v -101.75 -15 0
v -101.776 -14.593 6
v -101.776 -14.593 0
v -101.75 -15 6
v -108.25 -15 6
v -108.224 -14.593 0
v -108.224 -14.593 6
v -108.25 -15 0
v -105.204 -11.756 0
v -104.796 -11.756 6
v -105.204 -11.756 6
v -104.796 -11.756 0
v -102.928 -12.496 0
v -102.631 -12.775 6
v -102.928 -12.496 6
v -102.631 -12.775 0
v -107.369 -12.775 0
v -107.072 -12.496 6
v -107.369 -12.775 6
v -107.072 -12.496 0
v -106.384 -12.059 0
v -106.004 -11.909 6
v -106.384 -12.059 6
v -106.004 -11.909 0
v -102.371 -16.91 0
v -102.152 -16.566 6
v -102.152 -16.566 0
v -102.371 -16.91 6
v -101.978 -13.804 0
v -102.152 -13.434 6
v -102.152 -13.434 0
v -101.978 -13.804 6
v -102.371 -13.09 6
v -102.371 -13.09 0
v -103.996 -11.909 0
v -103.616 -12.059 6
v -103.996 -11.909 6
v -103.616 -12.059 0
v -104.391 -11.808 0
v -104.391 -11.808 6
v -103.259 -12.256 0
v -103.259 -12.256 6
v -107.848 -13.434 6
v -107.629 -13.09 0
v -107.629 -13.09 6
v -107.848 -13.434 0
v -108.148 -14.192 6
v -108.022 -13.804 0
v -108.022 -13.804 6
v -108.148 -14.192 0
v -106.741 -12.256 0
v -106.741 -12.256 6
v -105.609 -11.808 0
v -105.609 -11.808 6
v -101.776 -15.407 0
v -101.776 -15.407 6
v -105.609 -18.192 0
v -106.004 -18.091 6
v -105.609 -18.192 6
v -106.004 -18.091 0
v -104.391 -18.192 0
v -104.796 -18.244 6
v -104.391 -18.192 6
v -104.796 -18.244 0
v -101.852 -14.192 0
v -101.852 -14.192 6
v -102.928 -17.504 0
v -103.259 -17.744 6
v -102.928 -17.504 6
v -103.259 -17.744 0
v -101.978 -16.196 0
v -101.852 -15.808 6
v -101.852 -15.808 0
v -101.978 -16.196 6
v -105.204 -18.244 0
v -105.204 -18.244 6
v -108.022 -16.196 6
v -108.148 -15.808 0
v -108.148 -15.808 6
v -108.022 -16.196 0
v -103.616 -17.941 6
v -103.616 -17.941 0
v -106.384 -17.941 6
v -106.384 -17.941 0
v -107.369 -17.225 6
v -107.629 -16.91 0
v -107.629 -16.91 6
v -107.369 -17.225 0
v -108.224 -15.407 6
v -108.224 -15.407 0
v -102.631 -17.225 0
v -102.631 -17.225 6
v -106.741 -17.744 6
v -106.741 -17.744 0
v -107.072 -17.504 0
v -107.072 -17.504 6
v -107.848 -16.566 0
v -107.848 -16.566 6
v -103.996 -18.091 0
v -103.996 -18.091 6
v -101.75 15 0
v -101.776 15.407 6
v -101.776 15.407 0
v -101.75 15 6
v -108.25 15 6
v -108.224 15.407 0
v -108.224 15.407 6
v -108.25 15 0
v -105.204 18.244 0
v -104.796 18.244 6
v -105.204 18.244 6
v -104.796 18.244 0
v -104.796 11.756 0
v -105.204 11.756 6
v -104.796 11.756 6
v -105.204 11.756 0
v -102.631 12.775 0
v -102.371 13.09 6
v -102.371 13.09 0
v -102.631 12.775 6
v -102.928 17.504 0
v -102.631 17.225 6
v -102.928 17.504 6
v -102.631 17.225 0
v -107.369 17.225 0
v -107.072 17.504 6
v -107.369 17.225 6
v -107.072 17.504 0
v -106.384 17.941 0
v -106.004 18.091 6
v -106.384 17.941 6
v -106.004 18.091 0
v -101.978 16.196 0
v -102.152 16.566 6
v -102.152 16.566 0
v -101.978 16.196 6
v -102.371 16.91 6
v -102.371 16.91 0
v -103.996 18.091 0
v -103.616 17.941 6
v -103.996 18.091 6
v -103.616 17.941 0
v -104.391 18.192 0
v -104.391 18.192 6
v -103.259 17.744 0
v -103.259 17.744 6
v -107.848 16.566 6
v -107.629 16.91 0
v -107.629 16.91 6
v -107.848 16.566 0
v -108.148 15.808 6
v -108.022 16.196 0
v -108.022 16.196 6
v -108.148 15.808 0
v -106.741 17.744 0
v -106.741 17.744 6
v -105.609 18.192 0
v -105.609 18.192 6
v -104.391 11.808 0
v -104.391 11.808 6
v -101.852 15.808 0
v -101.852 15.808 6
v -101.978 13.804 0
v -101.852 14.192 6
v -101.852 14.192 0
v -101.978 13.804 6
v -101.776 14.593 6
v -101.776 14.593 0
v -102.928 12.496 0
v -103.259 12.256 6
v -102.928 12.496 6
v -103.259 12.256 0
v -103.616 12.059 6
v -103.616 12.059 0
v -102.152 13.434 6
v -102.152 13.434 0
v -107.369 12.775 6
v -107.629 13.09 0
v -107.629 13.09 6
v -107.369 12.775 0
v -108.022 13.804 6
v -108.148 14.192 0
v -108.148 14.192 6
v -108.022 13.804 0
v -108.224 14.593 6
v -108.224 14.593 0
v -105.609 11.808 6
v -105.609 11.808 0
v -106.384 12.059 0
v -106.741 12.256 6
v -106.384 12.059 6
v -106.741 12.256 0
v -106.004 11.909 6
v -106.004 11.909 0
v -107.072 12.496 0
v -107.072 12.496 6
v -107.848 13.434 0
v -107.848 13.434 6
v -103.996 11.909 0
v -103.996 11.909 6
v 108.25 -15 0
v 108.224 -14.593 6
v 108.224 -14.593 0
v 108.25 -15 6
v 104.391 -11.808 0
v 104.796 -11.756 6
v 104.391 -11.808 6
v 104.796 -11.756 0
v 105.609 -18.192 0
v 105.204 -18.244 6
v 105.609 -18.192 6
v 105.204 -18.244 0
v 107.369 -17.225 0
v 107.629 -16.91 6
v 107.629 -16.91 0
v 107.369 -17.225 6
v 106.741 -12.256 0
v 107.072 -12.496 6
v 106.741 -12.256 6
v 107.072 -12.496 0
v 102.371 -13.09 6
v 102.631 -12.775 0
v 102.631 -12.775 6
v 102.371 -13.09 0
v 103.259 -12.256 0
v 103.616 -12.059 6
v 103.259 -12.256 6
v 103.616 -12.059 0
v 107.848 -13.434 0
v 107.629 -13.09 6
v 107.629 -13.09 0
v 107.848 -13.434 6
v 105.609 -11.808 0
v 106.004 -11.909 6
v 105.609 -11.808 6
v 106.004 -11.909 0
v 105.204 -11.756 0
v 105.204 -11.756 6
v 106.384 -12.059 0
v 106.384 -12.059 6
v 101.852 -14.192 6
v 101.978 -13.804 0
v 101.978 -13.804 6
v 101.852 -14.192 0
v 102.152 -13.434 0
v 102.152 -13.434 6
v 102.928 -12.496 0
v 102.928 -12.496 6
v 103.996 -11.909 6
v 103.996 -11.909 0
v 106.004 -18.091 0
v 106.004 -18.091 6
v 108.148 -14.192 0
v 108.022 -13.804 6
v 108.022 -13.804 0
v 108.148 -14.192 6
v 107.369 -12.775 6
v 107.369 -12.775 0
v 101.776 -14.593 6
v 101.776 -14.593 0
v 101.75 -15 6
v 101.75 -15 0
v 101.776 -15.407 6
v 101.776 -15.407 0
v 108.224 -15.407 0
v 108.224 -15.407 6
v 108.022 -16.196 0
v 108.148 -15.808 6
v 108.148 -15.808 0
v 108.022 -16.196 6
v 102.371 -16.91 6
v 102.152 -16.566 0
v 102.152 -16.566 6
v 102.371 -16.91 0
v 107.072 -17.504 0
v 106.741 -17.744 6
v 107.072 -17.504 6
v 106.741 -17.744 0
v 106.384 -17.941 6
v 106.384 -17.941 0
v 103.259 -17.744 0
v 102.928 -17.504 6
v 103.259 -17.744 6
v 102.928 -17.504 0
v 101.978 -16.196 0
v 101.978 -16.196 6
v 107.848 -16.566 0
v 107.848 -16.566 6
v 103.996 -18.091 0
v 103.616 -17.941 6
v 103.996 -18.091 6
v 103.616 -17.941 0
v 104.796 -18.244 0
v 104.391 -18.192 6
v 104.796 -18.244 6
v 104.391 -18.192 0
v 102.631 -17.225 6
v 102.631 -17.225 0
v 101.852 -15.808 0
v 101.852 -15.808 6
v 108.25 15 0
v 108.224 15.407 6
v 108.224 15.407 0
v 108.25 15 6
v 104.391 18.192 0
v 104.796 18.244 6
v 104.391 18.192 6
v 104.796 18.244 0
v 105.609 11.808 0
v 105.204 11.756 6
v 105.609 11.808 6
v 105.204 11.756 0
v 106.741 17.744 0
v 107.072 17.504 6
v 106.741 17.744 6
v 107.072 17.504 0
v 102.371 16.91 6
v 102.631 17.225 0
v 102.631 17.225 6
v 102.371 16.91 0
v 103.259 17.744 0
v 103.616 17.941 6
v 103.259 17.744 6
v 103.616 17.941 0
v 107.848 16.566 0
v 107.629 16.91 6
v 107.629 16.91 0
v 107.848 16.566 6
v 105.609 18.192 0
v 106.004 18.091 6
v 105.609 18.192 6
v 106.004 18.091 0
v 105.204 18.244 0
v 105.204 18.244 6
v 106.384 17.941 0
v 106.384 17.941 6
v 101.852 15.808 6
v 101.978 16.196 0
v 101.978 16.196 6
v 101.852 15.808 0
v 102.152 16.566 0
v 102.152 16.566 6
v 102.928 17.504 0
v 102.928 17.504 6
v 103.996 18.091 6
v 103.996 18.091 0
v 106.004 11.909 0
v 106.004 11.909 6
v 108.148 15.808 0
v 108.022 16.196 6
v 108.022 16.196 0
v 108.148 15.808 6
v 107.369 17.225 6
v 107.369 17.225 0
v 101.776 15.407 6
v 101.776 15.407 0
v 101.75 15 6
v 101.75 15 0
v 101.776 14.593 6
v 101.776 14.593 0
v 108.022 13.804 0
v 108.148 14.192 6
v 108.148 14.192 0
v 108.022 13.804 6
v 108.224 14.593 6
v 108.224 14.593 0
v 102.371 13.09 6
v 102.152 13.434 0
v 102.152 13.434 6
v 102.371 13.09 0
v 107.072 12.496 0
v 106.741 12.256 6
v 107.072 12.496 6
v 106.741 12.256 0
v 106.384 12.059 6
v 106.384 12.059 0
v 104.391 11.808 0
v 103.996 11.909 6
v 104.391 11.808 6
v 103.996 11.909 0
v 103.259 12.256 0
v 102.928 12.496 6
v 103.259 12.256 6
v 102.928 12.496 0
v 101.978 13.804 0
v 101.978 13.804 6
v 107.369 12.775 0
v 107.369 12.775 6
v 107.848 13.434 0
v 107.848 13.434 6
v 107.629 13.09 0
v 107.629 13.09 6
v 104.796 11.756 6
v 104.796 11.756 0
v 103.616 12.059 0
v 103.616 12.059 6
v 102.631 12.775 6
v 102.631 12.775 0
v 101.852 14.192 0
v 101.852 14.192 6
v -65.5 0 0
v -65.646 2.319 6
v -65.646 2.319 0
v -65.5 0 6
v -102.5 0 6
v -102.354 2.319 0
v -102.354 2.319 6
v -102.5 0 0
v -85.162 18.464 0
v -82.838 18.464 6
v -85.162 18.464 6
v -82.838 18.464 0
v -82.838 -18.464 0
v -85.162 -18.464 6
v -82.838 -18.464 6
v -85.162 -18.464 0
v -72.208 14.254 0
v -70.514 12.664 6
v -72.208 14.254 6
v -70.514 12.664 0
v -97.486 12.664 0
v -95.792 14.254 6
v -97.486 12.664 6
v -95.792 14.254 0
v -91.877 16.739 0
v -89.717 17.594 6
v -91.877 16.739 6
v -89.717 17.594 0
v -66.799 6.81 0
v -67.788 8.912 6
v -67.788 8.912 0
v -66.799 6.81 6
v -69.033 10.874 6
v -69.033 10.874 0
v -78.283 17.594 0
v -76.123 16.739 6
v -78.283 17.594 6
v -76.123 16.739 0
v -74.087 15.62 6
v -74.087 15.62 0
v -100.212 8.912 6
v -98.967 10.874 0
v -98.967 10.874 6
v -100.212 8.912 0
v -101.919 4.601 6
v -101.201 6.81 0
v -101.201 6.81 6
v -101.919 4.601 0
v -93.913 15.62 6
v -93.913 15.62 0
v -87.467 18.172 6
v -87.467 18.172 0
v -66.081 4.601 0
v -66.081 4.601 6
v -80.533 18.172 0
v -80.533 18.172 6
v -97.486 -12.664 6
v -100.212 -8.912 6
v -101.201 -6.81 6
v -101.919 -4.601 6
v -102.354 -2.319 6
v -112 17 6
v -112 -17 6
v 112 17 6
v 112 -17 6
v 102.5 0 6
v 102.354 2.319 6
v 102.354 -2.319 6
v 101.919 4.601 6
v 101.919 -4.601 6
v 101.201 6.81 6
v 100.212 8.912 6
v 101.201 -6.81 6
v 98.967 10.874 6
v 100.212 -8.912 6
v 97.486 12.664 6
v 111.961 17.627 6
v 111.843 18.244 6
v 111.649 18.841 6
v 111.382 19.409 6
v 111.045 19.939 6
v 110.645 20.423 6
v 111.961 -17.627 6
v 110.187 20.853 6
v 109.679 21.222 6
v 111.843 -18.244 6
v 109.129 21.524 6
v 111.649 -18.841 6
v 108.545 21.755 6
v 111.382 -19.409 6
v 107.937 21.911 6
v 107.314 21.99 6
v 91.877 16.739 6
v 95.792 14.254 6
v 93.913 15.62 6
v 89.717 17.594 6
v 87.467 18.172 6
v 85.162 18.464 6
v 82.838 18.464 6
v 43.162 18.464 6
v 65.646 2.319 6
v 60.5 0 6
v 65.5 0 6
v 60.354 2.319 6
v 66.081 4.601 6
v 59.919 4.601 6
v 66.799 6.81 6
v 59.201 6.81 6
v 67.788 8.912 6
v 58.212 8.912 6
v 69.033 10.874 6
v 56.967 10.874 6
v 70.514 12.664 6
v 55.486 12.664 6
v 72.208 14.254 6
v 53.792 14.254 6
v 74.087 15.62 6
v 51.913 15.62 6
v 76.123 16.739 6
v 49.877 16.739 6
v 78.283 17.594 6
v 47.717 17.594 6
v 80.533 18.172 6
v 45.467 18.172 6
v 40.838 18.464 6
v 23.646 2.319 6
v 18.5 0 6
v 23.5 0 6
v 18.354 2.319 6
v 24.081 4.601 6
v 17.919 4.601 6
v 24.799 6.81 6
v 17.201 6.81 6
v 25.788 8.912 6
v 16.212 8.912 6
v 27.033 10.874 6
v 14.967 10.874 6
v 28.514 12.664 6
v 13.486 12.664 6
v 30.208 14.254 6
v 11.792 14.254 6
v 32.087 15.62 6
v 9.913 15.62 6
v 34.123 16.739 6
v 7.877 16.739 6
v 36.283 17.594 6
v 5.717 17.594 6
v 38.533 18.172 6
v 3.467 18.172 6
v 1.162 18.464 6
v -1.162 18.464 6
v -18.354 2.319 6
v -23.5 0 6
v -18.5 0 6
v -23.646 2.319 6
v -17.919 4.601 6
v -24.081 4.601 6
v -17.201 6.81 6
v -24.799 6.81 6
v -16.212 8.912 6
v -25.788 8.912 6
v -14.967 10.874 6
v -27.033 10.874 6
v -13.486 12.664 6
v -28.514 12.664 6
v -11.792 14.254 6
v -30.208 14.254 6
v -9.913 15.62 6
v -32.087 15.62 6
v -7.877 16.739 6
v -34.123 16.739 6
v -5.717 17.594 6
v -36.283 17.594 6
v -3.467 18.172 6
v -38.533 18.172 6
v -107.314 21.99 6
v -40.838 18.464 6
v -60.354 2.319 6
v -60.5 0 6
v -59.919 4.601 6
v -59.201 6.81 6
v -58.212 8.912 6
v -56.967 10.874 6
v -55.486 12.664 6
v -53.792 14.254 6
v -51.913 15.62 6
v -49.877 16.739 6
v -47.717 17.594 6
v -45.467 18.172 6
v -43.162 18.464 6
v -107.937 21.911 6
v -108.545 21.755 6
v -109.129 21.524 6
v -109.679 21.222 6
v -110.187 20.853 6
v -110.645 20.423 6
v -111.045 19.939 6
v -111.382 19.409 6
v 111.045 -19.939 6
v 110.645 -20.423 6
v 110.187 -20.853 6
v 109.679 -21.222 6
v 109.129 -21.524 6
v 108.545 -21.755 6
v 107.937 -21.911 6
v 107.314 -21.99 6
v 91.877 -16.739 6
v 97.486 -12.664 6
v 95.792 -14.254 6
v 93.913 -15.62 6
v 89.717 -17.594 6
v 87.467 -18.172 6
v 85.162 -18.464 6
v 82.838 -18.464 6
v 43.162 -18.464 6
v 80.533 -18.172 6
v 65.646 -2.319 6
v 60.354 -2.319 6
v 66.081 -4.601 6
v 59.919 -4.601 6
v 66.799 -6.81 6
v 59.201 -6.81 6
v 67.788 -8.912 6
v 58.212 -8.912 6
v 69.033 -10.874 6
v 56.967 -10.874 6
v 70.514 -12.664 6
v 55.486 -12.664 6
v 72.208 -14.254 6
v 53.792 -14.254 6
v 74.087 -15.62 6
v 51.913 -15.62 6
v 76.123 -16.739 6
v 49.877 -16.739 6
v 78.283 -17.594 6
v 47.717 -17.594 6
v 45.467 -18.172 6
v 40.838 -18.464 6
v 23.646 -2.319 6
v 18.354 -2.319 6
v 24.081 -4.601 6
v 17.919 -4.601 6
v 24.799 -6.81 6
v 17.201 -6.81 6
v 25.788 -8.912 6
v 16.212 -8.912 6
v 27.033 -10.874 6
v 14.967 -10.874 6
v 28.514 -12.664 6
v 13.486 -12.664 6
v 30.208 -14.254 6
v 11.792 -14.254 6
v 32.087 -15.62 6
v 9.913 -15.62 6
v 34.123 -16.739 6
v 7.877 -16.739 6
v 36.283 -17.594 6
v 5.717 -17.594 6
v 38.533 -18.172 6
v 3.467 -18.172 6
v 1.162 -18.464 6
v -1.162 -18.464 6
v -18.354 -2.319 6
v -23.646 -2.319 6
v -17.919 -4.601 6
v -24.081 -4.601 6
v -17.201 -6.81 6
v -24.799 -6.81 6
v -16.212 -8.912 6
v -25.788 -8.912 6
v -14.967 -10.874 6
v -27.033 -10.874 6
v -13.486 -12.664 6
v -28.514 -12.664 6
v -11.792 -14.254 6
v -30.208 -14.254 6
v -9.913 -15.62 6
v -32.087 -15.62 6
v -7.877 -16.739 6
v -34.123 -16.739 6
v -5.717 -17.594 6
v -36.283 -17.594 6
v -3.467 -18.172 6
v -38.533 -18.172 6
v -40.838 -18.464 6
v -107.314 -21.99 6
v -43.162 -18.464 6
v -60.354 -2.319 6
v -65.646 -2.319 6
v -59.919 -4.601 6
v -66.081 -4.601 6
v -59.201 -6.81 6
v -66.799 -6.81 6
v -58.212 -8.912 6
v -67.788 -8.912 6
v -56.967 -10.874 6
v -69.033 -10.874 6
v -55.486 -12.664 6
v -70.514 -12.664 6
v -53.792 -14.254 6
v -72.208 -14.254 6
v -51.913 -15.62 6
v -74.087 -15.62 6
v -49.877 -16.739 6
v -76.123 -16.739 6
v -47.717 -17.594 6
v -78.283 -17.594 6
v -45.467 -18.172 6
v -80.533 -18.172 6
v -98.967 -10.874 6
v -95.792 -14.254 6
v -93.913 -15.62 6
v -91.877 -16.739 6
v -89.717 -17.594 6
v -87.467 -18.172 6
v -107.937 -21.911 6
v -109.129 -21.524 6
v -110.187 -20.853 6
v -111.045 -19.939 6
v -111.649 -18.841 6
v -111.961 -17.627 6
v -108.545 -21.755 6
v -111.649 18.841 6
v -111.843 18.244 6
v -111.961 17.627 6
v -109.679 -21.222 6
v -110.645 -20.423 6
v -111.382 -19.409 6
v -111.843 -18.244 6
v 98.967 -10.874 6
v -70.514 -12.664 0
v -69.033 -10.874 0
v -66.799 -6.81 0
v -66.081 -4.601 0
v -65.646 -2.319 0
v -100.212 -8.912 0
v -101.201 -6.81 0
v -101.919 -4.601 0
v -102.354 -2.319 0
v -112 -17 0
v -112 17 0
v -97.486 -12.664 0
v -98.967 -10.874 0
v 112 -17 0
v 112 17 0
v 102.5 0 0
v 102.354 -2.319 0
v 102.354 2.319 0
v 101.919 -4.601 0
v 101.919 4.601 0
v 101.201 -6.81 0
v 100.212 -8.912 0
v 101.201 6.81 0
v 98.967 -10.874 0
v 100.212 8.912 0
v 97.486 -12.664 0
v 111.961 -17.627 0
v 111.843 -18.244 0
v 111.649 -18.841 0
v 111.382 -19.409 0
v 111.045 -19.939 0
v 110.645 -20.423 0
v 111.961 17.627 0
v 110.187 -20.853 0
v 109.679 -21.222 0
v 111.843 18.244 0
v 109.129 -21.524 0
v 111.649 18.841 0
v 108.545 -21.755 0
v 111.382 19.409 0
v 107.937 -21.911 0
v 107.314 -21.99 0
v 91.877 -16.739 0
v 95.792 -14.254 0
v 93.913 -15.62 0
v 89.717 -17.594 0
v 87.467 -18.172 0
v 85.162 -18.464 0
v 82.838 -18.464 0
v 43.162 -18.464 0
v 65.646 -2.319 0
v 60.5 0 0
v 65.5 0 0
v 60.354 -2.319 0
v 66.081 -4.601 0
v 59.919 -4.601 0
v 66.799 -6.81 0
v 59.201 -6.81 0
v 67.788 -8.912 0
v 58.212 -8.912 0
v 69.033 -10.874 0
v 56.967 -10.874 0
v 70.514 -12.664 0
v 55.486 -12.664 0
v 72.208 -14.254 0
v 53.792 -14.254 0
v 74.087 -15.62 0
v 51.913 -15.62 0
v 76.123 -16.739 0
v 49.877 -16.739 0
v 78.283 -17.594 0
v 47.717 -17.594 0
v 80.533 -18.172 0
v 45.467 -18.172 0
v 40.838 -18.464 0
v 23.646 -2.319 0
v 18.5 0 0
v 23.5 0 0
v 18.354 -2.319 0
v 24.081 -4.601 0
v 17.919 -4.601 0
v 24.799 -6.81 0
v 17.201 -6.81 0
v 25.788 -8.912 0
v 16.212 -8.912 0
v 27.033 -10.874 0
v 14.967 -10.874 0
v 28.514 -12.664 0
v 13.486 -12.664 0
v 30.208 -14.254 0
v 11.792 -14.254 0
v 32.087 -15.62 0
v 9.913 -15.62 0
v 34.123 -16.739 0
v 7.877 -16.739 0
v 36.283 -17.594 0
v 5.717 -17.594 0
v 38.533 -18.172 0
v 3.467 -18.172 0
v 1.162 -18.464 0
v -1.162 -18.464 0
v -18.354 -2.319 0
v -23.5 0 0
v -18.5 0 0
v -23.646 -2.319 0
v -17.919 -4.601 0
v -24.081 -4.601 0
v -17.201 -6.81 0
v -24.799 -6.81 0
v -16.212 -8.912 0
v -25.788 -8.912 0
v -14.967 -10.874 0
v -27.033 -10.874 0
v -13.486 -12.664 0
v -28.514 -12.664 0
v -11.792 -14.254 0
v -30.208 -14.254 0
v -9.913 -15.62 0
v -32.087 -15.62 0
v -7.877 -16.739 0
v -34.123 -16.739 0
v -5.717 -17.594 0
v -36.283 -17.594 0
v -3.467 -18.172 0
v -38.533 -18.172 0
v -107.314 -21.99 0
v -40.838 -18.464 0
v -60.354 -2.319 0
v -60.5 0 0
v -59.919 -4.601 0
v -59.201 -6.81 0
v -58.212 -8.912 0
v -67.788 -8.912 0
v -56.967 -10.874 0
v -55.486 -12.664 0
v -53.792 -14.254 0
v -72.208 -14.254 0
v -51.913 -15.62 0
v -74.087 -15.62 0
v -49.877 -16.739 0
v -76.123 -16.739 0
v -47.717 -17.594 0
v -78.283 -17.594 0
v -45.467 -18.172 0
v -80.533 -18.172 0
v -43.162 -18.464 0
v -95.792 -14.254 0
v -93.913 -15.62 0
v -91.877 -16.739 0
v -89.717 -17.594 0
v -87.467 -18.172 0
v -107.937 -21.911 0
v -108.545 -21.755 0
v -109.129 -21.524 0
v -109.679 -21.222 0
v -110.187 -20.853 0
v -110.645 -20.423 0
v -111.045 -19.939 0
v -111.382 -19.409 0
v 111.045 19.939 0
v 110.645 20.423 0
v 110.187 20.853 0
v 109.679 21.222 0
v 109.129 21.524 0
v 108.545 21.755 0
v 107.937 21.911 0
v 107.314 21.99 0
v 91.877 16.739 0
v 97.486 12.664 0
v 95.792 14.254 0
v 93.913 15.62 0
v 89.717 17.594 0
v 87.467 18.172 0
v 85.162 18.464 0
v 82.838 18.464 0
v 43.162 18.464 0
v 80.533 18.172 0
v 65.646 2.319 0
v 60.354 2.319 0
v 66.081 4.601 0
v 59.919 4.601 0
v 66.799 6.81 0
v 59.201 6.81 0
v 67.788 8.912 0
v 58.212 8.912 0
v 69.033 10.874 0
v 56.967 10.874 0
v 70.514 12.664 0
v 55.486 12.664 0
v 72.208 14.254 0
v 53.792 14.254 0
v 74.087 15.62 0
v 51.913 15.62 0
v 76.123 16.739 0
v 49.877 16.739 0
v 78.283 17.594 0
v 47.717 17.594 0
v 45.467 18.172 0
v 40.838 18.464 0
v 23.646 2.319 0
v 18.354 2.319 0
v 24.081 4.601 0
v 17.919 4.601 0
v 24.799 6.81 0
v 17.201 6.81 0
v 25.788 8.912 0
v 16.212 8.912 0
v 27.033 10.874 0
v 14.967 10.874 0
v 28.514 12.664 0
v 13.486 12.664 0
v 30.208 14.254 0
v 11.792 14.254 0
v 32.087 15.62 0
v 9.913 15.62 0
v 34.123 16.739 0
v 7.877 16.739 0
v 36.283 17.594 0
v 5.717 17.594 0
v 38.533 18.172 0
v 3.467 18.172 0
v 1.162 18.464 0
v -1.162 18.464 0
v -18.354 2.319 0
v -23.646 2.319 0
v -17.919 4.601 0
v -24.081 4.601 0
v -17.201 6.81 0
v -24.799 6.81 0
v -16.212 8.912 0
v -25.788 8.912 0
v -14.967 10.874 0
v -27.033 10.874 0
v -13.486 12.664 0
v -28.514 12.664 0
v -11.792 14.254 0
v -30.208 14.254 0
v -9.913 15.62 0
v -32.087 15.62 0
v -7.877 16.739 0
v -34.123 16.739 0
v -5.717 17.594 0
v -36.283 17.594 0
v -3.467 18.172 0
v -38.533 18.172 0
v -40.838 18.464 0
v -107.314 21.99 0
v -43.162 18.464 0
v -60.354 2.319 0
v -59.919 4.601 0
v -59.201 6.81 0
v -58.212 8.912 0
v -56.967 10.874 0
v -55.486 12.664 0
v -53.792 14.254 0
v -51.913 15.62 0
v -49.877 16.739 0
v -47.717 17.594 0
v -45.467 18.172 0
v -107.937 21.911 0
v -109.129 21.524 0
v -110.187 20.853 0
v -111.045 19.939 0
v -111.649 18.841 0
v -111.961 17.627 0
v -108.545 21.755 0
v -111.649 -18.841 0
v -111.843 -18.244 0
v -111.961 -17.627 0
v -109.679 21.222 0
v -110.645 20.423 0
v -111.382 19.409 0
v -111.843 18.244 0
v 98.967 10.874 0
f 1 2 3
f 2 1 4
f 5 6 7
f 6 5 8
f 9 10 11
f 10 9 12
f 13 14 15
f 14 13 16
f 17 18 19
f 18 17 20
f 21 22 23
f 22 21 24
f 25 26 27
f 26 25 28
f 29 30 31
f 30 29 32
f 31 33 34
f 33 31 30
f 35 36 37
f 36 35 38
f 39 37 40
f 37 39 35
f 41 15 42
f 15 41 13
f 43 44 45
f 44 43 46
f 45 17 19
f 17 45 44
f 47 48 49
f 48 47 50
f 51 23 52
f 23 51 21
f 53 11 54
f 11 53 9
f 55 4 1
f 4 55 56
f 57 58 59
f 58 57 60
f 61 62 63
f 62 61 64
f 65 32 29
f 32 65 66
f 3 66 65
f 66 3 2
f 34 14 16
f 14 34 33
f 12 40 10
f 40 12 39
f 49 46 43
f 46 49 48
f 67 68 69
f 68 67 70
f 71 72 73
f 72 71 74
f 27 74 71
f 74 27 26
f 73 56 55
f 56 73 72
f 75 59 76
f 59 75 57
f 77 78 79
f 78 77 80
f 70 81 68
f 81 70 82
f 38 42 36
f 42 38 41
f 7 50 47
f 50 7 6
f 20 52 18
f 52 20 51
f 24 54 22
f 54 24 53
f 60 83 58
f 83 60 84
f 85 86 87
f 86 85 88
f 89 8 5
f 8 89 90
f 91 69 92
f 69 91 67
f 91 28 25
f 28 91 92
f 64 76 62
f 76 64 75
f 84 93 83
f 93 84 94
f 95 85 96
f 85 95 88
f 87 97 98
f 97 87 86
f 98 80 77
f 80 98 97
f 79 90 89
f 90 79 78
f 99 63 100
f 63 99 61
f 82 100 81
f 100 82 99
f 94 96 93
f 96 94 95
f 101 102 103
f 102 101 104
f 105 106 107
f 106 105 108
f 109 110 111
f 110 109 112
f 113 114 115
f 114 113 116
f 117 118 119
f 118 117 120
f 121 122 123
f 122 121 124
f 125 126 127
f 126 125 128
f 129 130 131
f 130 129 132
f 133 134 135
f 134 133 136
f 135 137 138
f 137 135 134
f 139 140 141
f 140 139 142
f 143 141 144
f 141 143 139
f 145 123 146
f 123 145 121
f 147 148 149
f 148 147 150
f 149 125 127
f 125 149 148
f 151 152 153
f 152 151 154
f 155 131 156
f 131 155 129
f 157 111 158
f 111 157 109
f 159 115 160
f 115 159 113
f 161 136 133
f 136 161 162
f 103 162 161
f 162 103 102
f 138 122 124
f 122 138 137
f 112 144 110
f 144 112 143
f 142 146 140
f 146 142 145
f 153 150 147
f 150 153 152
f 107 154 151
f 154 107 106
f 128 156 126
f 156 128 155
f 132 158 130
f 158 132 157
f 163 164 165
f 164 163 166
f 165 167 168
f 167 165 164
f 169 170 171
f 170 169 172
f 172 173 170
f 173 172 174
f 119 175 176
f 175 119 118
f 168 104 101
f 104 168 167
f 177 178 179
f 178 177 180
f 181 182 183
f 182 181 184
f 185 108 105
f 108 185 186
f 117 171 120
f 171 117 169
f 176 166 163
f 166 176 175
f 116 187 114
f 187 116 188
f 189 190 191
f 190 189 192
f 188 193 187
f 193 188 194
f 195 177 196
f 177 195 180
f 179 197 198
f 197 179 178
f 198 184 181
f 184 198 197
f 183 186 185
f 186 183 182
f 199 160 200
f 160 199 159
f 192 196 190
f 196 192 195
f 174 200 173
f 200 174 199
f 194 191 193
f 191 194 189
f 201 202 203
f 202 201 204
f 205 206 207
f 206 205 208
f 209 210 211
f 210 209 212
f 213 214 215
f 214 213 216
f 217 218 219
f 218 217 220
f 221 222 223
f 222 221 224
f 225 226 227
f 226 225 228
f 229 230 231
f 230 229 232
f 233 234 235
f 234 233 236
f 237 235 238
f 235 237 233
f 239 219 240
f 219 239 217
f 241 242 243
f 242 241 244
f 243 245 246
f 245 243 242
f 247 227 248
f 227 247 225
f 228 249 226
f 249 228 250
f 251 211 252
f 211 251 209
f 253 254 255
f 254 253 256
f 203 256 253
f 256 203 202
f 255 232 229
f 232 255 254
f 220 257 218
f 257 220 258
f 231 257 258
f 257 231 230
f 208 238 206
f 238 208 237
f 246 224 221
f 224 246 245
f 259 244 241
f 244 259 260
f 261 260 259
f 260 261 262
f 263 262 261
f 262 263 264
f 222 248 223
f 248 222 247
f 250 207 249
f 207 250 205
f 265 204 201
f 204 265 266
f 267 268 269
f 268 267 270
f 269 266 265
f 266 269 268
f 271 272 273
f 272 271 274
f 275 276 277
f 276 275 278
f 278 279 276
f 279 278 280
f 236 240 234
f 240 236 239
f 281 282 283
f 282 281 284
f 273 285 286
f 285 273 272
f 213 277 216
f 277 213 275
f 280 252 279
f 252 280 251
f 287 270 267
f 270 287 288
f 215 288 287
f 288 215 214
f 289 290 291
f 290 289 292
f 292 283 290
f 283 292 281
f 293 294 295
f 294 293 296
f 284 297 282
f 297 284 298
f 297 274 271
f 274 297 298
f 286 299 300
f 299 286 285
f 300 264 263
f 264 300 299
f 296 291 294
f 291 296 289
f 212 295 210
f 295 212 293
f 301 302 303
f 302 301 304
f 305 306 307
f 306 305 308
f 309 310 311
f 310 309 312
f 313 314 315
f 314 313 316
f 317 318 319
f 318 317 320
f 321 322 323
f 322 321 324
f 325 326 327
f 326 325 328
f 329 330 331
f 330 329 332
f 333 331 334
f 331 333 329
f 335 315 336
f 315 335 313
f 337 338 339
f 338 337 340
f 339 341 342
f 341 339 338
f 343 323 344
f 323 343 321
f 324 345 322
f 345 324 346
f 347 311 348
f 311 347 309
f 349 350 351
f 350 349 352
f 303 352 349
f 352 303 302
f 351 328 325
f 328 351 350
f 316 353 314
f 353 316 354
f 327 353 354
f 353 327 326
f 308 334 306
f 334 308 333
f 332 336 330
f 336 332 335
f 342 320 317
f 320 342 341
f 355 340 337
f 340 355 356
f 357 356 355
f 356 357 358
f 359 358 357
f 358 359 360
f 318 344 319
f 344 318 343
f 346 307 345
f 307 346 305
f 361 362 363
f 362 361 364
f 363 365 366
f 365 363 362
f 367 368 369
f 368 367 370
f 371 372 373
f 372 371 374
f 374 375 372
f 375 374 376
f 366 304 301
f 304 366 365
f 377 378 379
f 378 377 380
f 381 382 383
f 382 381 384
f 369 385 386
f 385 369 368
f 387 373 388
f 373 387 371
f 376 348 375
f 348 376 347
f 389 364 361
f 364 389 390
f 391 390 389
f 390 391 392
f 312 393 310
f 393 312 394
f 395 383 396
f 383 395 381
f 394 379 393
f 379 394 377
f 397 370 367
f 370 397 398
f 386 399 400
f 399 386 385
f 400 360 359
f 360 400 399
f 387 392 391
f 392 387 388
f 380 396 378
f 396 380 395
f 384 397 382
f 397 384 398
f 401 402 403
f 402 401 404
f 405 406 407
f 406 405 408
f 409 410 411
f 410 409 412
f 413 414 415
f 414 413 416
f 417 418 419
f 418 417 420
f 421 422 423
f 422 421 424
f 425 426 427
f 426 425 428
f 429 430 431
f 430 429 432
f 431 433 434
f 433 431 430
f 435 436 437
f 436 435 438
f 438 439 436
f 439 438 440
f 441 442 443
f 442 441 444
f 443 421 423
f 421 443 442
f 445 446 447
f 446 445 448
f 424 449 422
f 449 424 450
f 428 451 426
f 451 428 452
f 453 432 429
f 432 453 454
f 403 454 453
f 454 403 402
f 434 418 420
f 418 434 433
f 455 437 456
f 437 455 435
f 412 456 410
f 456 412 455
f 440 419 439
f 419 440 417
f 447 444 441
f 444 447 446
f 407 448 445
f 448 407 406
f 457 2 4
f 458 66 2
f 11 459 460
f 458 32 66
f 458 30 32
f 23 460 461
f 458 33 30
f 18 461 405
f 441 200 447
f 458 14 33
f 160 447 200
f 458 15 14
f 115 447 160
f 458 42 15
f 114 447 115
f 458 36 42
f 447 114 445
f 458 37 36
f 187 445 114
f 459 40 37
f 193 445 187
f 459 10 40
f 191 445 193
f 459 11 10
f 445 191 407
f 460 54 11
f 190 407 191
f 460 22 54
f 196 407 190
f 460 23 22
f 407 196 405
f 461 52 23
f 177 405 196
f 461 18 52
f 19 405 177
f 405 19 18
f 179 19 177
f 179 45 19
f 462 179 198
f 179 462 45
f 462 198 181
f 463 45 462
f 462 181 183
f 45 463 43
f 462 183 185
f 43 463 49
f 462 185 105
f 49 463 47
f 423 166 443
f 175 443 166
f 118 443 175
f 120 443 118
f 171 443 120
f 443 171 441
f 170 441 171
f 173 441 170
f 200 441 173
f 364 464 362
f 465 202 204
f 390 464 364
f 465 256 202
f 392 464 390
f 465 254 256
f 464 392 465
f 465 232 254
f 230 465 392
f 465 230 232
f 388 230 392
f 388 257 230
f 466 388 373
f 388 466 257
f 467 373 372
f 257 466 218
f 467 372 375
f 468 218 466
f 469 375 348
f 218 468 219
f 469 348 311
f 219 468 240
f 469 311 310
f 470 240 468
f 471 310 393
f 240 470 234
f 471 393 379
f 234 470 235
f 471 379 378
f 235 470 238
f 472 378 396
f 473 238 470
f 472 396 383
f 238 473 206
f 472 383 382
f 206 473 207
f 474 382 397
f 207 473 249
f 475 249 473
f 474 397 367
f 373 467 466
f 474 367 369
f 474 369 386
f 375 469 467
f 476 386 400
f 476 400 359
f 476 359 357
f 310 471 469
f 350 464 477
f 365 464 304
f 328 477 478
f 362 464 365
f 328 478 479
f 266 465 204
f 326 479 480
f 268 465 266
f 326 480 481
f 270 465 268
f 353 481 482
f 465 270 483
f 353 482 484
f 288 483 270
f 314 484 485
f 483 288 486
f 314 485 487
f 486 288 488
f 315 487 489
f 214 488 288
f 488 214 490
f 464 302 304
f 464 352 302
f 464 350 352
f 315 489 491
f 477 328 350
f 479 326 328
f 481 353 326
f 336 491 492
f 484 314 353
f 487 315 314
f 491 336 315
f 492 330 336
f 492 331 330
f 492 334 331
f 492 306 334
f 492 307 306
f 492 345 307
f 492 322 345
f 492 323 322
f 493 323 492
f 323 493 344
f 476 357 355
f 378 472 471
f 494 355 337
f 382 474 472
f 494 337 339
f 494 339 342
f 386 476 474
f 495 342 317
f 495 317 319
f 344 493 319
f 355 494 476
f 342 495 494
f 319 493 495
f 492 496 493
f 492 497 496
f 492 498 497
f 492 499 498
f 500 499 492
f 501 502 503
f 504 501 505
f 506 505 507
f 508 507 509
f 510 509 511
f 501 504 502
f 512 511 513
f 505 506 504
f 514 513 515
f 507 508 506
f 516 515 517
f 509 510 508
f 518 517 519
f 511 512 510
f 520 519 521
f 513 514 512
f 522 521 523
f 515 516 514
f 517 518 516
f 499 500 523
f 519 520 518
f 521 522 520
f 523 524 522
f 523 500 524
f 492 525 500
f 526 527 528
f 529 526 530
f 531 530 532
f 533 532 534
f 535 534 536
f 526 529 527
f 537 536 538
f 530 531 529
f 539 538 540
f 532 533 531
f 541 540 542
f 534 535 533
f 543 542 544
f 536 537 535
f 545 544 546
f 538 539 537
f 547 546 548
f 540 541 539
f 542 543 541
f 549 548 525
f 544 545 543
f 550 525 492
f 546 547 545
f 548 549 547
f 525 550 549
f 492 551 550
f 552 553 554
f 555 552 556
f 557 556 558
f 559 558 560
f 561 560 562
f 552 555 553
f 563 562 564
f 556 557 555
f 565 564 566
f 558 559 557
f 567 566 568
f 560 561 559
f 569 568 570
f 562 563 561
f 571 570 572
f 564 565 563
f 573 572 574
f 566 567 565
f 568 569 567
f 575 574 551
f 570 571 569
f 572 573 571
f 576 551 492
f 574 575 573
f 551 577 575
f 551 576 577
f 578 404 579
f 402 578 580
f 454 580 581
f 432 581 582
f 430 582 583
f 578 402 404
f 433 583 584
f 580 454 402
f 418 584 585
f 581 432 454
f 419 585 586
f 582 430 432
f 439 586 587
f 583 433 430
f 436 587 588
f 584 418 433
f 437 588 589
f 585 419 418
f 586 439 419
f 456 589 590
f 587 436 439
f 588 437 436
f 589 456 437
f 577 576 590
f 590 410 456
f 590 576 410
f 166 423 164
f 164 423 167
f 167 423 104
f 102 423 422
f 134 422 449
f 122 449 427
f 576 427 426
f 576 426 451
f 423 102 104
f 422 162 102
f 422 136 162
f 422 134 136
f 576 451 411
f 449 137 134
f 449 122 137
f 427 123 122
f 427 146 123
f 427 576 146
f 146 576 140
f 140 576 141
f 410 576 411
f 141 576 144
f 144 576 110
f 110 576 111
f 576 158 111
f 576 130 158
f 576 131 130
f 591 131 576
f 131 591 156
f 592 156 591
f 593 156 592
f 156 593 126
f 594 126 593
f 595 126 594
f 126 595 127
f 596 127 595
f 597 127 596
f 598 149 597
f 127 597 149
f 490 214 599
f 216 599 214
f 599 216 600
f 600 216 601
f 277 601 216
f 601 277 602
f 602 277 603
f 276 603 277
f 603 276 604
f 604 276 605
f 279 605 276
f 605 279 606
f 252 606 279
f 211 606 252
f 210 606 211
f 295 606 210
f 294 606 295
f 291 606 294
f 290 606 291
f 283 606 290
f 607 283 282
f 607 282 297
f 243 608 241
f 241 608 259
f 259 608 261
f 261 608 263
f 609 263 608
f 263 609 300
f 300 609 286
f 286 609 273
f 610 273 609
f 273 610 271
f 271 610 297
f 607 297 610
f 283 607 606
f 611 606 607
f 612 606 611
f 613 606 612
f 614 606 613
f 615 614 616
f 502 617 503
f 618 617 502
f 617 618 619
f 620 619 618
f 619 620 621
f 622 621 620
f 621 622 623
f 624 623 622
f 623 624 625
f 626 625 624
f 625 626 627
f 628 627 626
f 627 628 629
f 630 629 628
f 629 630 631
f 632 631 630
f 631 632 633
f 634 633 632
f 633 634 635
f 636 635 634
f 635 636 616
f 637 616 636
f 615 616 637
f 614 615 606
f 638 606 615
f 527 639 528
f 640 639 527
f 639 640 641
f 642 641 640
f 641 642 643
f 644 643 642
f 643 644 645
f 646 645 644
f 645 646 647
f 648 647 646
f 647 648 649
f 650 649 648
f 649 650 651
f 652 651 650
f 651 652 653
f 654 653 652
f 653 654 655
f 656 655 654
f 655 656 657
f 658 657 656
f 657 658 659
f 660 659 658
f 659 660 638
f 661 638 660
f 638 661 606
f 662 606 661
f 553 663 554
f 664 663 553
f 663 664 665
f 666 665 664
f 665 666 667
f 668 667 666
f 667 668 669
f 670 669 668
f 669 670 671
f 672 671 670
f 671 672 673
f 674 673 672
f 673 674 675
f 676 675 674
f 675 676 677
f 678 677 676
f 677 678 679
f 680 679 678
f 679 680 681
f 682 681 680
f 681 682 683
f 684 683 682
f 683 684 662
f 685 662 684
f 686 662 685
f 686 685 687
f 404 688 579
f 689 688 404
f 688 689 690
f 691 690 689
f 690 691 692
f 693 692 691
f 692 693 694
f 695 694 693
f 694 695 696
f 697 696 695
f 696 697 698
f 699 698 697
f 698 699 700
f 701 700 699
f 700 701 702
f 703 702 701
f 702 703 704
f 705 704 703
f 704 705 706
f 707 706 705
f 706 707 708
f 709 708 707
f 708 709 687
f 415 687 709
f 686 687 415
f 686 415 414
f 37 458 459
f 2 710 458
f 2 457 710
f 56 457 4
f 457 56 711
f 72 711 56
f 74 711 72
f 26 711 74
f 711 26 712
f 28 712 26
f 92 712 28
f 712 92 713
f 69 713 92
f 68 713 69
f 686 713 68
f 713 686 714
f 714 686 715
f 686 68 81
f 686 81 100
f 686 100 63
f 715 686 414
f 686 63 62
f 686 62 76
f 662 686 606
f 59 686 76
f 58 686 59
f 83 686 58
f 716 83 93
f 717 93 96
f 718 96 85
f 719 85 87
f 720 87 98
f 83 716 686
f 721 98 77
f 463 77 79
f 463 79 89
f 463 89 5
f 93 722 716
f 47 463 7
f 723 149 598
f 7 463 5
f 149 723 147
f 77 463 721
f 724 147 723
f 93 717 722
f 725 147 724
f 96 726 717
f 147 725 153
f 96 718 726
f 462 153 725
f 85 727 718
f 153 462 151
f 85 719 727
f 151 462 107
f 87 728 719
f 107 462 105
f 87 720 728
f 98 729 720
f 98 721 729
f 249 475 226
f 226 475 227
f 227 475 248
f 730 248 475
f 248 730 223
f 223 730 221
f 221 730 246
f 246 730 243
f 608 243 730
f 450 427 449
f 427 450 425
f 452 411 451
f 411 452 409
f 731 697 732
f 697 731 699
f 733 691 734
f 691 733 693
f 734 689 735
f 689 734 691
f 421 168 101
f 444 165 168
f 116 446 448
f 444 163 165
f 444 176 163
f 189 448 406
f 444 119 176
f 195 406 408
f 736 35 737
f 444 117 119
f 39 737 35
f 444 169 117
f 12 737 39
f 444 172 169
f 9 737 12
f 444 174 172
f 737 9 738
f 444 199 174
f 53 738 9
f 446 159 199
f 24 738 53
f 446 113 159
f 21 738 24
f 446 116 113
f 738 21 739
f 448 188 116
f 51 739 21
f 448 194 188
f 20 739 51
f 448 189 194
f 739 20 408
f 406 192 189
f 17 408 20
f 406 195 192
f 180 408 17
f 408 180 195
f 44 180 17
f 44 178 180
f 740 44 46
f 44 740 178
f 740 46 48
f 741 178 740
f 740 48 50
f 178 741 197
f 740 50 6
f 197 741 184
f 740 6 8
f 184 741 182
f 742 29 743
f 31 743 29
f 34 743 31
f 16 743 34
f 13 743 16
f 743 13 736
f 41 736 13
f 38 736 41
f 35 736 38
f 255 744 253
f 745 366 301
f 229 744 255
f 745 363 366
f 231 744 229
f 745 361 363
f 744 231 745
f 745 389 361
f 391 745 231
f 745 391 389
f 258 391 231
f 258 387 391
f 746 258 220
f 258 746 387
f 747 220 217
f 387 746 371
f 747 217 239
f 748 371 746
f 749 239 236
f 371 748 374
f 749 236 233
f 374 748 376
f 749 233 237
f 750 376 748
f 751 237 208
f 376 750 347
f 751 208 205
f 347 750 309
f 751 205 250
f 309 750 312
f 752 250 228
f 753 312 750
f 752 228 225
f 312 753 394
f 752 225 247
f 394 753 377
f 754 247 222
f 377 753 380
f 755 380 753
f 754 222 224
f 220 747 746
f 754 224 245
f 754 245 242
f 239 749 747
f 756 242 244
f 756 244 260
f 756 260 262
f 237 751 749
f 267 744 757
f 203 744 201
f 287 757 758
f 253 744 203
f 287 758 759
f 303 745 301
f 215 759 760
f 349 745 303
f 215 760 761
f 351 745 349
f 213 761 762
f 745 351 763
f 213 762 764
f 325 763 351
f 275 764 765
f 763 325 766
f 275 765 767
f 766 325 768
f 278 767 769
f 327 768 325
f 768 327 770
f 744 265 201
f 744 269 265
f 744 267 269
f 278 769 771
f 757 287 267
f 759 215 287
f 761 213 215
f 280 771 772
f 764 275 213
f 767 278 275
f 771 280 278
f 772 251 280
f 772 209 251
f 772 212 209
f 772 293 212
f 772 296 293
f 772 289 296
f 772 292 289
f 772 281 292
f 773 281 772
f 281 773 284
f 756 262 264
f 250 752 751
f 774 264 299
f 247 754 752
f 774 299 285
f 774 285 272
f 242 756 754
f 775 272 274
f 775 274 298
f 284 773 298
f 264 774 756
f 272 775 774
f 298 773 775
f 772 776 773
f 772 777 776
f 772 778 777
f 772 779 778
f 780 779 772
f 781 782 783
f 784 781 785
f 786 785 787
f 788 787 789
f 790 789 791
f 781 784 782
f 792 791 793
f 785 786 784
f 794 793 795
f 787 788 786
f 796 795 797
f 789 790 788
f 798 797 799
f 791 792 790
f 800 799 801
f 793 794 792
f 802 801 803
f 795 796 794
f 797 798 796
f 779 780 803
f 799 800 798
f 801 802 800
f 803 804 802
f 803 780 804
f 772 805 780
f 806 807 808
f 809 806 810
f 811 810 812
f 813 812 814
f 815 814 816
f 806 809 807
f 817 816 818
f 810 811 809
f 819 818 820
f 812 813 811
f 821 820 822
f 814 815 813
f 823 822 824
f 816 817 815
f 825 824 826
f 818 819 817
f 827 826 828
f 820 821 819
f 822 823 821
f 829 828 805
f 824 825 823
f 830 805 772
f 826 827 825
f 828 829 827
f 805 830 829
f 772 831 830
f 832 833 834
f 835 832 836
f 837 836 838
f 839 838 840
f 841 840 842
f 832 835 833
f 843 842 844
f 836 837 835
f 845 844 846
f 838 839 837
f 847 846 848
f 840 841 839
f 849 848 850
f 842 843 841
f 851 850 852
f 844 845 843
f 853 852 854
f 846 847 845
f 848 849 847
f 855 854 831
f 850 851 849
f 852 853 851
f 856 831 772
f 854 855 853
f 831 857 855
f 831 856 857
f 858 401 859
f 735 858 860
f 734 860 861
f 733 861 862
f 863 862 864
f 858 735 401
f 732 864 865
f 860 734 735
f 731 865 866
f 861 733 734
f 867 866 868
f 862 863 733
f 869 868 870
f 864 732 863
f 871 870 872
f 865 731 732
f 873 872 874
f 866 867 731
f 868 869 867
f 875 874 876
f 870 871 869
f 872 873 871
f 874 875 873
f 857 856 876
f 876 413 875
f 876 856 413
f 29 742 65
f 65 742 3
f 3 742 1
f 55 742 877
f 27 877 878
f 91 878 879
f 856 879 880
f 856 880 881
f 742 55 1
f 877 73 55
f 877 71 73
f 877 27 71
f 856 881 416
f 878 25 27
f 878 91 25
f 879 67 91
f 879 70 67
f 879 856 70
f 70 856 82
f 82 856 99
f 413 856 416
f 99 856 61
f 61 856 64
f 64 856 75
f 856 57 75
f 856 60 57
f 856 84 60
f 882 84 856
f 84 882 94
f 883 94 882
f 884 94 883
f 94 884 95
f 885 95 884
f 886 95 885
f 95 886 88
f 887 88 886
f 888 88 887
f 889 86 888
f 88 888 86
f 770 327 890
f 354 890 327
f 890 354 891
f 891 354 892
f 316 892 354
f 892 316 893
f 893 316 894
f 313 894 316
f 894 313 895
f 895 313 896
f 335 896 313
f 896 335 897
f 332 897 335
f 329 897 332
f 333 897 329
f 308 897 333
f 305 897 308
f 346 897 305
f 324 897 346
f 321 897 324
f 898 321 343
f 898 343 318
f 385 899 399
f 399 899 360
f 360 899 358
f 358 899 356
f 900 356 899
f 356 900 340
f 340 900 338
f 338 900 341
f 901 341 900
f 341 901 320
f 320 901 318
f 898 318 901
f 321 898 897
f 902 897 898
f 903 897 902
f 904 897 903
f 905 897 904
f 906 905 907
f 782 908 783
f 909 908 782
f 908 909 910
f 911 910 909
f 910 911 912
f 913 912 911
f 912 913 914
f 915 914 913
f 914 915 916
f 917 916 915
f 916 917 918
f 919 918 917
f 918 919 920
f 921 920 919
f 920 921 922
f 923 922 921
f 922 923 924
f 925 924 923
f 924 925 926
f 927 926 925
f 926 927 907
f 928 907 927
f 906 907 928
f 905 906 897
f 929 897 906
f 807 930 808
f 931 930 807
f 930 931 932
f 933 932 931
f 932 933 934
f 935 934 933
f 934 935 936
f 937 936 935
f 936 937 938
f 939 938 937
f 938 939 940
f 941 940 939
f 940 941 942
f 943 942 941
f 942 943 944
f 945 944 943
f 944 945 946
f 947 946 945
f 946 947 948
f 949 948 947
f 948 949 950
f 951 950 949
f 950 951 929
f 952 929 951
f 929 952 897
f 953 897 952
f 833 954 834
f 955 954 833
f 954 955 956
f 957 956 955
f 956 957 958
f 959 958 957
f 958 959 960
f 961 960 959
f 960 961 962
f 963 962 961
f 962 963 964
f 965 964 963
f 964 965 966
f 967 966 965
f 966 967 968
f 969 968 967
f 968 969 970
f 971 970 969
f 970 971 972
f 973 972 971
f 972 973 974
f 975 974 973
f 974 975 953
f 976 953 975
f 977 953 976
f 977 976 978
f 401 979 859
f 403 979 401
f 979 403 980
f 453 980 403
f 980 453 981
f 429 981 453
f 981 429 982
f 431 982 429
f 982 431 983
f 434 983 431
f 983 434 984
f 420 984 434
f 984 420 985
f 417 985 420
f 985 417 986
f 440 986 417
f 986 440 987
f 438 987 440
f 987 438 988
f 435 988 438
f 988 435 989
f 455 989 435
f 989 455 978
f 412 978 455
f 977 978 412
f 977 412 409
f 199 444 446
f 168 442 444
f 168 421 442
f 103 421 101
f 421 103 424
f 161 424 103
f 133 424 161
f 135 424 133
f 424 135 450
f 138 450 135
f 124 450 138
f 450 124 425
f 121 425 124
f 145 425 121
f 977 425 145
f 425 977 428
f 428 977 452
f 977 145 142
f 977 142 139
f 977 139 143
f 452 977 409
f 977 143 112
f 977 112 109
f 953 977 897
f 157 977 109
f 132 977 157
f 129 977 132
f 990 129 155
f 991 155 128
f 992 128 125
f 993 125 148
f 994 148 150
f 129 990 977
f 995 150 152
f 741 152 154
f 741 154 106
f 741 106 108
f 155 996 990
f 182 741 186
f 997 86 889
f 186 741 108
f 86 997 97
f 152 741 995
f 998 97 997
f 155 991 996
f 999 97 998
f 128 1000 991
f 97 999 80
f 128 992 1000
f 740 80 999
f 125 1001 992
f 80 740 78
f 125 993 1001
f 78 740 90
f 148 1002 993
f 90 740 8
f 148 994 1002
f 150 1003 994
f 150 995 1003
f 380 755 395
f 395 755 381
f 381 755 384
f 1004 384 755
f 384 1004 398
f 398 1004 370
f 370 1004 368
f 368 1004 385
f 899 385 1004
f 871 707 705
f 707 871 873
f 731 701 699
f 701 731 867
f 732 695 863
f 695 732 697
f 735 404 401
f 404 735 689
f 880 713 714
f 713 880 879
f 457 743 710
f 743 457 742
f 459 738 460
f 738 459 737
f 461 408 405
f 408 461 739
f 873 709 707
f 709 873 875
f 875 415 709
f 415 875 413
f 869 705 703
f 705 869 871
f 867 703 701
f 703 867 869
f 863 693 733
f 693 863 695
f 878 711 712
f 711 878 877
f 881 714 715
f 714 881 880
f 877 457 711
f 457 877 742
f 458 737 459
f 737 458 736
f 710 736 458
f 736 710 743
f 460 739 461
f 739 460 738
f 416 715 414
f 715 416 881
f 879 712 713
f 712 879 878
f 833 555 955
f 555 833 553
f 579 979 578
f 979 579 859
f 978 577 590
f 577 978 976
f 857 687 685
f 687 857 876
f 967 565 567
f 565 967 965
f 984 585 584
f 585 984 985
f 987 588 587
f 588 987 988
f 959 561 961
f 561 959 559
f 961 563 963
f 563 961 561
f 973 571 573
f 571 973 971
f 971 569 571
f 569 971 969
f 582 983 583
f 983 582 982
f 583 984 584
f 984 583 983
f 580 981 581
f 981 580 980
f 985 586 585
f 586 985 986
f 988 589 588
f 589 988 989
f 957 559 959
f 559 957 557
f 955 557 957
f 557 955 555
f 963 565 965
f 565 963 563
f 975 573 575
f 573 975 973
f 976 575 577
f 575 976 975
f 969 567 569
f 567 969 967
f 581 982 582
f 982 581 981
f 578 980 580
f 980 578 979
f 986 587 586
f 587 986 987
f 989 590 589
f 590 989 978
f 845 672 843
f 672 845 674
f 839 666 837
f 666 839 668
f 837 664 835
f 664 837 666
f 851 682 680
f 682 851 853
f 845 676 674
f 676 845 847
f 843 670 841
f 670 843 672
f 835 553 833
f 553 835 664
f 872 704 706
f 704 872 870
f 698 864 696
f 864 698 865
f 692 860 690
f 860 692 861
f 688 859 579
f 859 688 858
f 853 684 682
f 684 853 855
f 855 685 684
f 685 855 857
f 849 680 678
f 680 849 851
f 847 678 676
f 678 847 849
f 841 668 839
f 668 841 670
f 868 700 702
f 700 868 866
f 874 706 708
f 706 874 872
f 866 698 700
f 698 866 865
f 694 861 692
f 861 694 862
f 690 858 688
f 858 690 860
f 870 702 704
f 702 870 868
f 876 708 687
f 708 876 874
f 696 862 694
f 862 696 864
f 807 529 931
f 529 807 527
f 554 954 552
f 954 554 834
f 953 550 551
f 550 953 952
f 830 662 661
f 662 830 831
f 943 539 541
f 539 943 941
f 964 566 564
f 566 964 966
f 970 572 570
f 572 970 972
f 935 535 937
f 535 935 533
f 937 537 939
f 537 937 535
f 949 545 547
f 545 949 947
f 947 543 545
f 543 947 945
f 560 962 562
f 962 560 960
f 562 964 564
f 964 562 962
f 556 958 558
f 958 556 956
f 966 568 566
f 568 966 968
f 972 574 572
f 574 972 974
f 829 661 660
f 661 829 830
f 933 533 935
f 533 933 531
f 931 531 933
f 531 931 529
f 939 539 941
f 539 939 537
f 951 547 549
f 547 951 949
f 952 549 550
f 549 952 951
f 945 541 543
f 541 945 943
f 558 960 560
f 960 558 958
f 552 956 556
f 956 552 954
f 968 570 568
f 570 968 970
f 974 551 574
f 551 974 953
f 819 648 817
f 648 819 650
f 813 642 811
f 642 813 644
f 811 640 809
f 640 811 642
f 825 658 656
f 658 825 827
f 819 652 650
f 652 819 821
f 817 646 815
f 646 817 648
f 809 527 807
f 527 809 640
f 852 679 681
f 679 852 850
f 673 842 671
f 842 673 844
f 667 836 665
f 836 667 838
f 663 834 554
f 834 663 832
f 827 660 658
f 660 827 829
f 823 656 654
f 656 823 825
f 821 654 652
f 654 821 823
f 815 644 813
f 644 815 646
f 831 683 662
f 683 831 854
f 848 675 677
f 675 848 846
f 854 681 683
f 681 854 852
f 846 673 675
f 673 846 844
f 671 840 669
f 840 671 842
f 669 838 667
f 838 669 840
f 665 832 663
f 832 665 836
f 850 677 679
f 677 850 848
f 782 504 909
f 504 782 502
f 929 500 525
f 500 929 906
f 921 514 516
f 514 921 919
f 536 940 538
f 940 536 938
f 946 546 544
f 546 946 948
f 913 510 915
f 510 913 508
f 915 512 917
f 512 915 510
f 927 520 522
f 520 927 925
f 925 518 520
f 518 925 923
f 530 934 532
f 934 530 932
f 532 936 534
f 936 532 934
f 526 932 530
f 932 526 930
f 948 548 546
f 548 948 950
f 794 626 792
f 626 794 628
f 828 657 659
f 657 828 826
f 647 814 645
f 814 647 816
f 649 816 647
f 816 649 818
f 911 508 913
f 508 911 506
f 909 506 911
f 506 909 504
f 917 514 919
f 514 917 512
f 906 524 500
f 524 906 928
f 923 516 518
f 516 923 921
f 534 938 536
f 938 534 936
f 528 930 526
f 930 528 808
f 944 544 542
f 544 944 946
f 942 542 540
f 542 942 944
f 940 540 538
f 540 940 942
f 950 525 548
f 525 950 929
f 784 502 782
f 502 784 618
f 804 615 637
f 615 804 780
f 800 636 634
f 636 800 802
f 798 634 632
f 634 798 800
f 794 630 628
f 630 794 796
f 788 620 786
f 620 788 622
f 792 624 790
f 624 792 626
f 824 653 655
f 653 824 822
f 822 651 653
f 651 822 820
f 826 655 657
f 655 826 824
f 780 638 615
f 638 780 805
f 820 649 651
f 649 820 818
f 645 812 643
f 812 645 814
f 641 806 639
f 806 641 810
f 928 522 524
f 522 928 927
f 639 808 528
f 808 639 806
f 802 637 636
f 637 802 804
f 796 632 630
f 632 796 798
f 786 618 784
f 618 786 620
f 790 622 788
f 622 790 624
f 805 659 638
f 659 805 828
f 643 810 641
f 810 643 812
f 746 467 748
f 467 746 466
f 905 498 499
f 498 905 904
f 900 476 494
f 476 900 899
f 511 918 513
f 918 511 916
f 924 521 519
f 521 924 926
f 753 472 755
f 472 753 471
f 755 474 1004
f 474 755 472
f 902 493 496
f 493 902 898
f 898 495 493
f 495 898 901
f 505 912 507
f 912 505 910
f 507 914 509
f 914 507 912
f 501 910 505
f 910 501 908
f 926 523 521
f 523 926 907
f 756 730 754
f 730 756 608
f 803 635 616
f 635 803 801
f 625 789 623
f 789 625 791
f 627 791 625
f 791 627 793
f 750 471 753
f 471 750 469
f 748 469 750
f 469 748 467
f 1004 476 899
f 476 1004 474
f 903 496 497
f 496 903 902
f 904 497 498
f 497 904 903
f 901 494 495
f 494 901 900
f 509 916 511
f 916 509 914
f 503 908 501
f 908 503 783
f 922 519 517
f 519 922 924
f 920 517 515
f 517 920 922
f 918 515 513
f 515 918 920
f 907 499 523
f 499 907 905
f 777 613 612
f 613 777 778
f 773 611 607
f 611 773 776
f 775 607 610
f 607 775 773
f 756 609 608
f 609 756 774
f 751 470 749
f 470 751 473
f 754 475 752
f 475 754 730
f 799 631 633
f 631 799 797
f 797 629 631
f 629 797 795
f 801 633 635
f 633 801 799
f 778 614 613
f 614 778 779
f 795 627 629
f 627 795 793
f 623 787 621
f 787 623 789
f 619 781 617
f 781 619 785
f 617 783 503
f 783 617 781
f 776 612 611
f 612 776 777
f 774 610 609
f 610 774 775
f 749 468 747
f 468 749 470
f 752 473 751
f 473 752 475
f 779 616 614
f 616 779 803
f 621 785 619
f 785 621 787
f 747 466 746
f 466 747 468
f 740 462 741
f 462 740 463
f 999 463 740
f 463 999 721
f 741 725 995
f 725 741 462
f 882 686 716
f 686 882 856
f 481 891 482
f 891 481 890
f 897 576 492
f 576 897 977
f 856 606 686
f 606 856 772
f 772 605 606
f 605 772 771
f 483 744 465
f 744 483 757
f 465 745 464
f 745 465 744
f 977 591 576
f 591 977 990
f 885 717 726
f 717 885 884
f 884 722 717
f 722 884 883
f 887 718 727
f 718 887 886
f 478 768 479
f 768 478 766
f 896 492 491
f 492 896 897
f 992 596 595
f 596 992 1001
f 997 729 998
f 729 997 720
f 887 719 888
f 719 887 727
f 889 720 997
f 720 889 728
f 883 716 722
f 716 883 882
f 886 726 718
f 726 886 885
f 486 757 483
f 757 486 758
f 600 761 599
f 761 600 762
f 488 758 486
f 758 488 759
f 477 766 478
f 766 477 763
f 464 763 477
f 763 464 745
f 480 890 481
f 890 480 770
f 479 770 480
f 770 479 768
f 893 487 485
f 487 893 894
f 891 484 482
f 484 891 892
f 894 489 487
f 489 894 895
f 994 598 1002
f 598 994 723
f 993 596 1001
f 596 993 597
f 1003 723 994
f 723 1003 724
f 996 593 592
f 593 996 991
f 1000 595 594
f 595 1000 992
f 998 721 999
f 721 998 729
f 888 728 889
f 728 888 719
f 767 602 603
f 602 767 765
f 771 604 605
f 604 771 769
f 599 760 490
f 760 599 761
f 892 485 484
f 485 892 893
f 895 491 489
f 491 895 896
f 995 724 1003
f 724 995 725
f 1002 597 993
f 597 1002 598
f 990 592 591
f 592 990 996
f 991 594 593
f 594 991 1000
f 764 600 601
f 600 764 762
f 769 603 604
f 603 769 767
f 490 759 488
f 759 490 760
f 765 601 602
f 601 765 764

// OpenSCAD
$fn = 50;


difference() {
	union() {
		hull() {
			translate(v = [-107.0000000000, 17.0000000000, 0]) {
				cylinder(h = 6, r = 5);
			}
			translate(v = [107.0000000000, 17.0000000000, 0]) {
				cylinder(h = 6, r = 5);
			}
			translate(v = [-107.0000000000, -17.0000000000, 0]) {
				cylinder(h = 6, r = 5);
			}
			translate(v = [107.0000000000, -17.0000000000, 0]) {
				cylinder(h = 6, r = 5);
			}
		}
	}
	union() {
		#translate(v = [-105.0000000000, -15.0000000000, -100.0000000000]) {
			cylinder(h = 200, r = 3.2500000000);
		}
		#translate(v = [-105.0000000000, 15.0000000000, -100.0000000000]) {
			cylinder(h = 200, r = 3.2500000000);
		}
		#translate(v = [105.0000000000, -15.0000000000, -100.0000000000]) {
			cylinder(h = 200, r = 3.2500000000);
		}
		#translate(v = [105.0000000000, 15.0000000000, -100.0000000000]) {
			cylinder(h = 200, r = 3.2500000000);
		}
		#translate(v = [-84.0000000000, 0, 0]) {
			cylinder(h = 6, r = 18.5000000000);
		}
		#translate(v = [-42.0000000000, 0, 0]) {
			cylinder(h = 6, r = 18.5000000000);
		}
		#cylinder(h = 6, r = 18.5000000000);
		#translate(v = [42.0000000000, 0, 0]) {
			cylinder(h = 6, r = 18.5000000000);
		}
		#translate(v = [84.0000000000, 0, 0]) {
			cylinder(h = 6, r = 18.5000000000);
		}
	}
}
